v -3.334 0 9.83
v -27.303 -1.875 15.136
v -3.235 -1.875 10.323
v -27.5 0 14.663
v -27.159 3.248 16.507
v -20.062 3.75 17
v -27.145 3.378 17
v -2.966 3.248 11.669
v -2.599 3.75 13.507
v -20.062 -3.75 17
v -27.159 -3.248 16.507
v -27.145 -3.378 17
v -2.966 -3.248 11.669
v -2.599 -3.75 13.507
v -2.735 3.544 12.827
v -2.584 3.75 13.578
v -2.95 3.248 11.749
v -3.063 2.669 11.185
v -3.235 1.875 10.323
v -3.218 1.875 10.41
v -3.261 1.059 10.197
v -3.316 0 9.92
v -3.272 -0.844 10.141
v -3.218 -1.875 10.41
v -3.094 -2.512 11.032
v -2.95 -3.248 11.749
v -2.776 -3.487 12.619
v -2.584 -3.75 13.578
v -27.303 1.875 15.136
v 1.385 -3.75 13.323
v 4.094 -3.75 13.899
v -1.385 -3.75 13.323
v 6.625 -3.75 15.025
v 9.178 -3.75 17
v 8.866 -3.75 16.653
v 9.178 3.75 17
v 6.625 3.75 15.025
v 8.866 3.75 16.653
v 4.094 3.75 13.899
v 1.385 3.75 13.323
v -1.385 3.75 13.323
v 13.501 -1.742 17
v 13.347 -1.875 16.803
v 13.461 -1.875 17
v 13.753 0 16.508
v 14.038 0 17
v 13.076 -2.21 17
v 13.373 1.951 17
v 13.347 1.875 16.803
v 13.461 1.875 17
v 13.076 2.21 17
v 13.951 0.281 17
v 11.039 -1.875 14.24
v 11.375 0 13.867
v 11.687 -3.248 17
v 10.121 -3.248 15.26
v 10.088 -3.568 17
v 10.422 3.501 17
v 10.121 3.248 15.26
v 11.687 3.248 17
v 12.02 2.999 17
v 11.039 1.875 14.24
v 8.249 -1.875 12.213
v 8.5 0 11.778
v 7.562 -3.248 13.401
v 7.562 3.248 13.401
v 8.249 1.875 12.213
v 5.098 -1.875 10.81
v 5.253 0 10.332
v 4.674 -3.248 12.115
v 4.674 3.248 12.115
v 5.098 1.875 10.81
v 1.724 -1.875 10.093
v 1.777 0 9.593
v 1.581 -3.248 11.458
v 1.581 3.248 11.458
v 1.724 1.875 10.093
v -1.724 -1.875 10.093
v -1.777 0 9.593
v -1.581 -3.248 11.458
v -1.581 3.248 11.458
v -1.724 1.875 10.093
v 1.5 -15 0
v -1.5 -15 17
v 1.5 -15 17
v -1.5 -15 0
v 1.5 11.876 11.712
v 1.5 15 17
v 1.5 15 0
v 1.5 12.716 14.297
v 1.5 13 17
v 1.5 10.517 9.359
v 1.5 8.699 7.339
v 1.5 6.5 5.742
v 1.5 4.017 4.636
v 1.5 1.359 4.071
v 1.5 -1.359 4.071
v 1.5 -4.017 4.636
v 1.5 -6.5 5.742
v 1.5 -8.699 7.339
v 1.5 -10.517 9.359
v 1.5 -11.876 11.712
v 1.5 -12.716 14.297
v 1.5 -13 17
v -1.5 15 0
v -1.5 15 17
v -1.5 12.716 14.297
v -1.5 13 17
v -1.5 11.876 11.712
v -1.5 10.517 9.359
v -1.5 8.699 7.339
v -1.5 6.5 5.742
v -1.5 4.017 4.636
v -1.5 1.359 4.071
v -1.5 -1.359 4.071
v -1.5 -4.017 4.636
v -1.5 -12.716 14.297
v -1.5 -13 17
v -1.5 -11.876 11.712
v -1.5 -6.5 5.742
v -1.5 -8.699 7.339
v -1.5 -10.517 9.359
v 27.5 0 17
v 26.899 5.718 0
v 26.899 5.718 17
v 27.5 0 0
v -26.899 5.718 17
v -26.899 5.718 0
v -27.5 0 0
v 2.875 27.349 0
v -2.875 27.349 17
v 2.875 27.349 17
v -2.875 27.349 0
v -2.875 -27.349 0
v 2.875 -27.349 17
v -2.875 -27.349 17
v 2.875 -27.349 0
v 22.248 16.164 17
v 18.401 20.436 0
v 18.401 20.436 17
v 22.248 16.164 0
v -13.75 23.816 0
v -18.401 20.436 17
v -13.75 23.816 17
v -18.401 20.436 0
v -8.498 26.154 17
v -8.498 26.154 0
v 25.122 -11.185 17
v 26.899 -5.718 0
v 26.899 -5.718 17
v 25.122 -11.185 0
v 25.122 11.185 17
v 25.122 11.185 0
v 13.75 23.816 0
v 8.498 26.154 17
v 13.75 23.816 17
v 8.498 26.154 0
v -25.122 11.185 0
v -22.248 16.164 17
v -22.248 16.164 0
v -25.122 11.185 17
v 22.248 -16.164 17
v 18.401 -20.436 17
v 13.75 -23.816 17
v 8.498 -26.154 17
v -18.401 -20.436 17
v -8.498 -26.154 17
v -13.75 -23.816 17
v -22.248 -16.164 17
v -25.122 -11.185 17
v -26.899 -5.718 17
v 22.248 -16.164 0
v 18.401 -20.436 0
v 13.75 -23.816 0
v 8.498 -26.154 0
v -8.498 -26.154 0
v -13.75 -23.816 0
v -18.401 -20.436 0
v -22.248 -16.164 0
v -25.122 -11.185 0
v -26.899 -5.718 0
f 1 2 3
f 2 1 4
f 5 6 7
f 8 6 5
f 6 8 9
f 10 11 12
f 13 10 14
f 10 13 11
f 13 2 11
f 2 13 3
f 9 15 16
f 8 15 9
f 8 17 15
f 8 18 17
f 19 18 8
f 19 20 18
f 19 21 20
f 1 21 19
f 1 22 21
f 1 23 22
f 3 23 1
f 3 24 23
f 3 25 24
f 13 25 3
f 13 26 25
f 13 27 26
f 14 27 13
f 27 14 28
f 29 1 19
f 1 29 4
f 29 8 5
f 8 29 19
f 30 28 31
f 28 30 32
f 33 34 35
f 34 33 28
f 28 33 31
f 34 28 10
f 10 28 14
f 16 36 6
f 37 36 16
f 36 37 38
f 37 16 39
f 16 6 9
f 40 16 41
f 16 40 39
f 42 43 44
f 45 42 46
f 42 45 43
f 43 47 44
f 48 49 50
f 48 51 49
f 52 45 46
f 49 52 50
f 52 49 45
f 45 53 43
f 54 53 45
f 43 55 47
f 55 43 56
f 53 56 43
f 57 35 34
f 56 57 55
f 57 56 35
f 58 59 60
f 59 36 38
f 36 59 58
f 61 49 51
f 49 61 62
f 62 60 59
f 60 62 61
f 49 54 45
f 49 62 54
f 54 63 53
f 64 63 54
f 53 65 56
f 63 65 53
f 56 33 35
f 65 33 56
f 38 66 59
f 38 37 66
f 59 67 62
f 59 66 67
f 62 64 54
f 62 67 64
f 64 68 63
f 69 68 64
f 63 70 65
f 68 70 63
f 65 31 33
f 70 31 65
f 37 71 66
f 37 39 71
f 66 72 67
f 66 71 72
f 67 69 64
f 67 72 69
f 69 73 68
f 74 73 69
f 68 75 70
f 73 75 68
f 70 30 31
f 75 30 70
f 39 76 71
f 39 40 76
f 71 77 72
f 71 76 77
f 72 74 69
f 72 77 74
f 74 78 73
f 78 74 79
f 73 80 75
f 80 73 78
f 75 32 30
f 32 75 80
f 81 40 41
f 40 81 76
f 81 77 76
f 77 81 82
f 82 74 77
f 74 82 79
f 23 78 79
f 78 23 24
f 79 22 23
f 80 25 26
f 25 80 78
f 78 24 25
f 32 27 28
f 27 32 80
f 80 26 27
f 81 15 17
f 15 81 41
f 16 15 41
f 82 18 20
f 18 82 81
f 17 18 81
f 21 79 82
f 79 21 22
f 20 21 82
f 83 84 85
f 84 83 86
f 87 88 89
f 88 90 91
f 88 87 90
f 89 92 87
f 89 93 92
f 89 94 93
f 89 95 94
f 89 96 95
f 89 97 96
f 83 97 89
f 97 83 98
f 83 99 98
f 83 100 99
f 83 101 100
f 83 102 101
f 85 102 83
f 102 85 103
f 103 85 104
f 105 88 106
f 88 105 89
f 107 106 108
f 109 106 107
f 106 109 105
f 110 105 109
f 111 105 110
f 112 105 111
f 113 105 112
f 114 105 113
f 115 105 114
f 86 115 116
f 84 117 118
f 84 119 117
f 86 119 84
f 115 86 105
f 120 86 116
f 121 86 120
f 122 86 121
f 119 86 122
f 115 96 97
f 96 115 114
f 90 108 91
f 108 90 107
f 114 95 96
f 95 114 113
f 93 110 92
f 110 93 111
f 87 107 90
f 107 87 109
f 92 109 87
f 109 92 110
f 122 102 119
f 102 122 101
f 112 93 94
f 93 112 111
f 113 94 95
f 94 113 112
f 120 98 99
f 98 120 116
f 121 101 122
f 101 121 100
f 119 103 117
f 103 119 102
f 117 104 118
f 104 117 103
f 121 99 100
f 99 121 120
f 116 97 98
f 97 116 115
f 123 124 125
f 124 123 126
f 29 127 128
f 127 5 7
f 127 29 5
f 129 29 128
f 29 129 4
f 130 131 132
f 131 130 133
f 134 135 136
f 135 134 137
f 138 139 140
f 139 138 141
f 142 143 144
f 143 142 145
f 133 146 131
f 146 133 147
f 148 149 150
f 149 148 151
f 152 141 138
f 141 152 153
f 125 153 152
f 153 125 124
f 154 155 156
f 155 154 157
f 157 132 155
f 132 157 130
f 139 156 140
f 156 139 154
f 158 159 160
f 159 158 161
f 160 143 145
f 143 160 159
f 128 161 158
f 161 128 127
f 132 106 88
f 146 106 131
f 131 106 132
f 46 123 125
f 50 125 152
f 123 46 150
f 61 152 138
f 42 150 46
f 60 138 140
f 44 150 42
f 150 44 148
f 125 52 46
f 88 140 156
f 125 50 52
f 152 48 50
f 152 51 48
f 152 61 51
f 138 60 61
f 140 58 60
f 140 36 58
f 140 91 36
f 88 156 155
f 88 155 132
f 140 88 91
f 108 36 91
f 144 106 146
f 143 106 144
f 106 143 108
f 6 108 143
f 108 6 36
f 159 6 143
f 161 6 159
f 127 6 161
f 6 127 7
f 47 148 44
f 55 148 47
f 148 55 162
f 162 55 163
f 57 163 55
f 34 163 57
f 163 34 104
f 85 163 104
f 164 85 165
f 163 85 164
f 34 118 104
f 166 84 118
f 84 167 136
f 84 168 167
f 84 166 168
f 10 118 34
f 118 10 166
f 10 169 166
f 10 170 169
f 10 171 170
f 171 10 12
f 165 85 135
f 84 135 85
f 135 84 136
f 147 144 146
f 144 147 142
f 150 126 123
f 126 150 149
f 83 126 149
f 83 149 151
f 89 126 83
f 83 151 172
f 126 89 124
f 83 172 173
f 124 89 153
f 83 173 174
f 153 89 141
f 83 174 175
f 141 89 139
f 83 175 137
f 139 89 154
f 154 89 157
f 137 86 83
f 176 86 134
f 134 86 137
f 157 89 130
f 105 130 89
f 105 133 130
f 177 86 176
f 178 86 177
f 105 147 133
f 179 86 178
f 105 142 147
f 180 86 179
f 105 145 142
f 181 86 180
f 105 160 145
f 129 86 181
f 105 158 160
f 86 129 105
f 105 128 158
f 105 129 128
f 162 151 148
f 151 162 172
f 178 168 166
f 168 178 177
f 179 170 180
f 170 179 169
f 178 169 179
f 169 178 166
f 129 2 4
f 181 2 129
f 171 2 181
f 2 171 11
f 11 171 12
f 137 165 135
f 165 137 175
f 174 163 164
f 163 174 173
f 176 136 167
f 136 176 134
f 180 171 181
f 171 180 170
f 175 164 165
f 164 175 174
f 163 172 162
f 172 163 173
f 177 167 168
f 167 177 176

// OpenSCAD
d1 = 6.5+1;
d2 = 32+2;

angle = atan2(50,250);

foot_h = 17;
zip_thickness = 2;
zip_width=3;
zip_path_r = 15;

module torus(major_r, minor_r){
    rotate_extrude() translate([major_r,0,0]) circle(r=minor_r);
}

module ring(){
    //%cylinder(d=d2,h=d1, center=true);
    torus(d2/2-d1/2, d1/2);
    cylinder(d=d2-d1,h=d1, center=true);
    rotate([90,0,-90-angle]){
        translate([d2/2-d1/2,0,0])cylinder(d=d1,h=99);
        translate([0,0,99/2]) cube([d2-d1,d1,99], center=true);
    }
}
module main(){
    difference(){
        union(){
            cylinder(d=55, h=foot_h);
        }
        translate([0,0,d2/2+foot_h-d1]) rotate([90,0,0]) ring();

        translate([0,0,foot_h]) rotate([90,0,90]) difference(){
            cube([2*zip_path_r,999,zip_width], center=true);
            cylinder(r=zip_path_r-zip_thickness, h=zip_width+2, center=true);
        }
    }
}


main();
